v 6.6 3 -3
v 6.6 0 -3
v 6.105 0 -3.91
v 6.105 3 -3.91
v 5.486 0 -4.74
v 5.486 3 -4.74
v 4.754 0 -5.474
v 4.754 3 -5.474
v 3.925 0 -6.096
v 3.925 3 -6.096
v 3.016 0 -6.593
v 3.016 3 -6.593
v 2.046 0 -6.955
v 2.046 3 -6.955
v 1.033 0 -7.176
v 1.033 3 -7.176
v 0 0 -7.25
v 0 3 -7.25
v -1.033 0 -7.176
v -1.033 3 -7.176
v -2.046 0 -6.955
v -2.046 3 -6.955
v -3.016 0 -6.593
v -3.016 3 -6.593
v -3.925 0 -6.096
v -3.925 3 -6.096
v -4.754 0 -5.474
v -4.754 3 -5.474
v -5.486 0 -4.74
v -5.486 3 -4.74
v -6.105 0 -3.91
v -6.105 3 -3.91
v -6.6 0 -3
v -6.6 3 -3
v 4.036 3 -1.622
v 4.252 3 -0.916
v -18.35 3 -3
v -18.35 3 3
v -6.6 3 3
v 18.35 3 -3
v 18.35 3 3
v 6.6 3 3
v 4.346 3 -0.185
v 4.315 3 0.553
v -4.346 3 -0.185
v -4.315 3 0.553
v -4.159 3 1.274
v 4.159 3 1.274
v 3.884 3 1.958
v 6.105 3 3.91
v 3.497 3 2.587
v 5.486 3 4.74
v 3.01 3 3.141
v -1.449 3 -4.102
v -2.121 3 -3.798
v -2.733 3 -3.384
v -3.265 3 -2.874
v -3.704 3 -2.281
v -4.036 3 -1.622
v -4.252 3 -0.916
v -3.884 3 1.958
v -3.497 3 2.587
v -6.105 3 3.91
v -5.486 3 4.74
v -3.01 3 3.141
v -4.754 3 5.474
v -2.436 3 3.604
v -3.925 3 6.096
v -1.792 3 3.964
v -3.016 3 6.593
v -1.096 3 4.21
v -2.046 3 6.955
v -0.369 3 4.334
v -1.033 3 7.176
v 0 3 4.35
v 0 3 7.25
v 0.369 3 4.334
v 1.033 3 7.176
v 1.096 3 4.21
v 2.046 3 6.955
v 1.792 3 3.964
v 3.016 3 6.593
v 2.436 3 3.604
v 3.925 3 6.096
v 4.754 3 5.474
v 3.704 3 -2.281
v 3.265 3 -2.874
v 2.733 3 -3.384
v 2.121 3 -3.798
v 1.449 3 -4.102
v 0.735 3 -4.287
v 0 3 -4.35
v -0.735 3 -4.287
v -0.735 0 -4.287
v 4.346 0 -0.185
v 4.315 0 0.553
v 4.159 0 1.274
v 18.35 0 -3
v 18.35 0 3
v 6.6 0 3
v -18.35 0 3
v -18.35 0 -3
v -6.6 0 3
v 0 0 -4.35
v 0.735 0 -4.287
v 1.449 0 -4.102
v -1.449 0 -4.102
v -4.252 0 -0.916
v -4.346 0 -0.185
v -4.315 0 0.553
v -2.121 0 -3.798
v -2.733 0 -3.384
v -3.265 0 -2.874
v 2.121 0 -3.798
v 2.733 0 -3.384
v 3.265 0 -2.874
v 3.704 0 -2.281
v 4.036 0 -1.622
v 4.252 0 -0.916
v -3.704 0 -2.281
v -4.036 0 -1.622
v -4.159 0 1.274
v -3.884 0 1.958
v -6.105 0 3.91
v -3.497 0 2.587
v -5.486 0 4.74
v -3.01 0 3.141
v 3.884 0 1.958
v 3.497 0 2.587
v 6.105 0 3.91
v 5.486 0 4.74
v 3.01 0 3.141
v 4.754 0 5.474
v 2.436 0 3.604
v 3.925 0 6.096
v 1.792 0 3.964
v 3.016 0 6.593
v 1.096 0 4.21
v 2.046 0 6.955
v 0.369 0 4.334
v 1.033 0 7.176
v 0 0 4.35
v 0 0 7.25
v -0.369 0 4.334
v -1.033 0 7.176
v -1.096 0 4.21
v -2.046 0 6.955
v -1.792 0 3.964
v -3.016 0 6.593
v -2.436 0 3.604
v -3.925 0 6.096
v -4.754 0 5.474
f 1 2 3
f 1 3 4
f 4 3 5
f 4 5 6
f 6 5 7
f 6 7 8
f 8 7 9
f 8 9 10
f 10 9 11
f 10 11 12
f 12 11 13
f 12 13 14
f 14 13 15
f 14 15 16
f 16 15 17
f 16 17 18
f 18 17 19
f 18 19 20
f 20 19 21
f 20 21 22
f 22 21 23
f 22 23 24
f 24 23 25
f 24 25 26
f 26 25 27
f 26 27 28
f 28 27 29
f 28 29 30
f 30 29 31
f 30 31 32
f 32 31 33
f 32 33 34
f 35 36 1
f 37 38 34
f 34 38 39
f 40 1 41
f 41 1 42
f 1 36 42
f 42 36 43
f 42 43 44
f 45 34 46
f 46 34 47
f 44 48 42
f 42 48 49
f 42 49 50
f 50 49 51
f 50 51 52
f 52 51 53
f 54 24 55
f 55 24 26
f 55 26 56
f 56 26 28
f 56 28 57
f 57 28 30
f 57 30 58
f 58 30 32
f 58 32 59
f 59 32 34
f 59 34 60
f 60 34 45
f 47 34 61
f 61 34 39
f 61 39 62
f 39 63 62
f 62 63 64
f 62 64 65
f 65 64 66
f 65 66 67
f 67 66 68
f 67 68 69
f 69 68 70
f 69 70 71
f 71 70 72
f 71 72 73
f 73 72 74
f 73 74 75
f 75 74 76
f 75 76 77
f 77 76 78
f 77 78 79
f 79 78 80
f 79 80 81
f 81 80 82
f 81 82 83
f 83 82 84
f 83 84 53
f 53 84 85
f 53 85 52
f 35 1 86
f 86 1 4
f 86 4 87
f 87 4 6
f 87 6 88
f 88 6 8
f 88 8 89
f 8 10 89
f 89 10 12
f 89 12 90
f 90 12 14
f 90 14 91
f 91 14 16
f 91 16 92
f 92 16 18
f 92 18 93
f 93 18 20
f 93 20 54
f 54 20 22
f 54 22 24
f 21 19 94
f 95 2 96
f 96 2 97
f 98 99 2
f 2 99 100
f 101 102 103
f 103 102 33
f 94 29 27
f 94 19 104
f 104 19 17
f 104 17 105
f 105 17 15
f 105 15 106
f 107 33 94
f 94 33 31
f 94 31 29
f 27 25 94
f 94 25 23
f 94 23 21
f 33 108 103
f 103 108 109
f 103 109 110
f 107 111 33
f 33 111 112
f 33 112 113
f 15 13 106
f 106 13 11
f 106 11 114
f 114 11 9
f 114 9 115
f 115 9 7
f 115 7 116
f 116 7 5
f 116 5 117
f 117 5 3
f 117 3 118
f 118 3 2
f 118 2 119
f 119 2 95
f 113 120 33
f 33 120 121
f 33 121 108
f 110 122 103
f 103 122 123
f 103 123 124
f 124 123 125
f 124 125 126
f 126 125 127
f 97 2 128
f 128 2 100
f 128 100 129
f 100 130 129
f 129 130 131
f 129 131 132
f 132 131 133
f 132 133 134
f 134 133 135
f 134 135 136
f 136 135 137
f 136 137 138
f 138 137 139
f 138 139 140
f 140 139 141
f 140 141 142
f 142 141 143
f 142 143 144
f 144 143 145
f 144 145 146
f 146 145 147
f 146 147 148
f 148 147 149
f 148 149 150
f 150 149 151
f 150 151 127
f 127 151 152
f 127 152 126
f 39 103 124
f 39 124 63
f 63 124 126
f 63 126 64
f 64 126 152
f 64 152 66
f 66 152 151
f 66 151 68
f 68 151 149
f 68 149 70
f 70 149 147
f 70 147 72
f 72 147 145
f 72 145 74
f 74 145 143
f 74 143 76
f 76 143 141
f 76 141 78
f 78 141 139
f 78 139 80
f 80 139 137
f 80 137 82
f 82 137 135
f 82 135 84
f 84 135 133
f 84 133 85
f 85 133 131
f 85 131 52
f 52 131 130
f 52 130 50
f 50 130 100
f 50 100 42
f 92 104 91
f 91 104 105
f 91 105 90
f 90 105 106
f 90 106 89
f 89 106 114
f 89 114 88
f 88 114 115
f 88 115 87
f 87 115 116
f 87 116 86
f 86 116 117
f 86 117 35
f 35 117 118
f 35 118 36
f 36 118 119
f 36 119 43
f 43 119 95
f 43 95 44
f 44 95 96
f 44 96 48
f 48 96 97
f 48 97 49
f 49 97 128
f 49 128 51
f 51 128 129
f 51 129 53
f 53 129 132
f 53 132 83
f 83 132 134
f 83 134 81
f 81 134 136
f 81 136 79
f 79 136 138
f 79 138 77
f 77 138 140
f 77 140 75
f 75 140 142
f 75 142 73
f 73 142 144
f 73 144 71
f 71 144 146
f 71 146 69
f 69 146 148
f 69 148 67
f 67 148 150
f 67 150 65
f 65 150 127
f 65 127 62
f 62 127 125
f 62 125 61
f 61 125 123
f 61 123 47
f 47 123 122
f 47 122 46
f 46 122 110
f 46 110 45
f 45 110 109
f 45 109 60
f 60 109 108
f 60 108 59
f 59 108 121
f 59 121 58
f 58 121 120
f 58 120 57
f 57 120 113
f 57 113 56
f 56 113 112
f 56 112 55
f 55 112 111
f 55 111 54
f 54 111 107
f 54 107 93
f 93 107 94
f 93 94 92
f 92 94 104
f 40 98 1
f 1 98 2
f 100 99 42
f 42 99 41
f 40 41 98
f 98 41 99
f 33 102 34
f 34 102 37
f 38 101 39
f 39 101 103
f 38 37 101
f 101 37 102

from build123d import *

# Parameters (mm, degrees)
SKETCH1_R           = 7.25
SKETCH1_R_2         = 4.35
BOSS_EXTRUDE1_DEPTH = 3
SKETCH2_W           = 14
SKETCH2_H           = 6
BOSS_EXTRUDE2_DEPTH = 3


with BuildPart() as part:
    # Sketch1 → Boss-Extrude1 (new body)
    with BuildSketch(Plane(origin=(0, 0, 0), x_dir=(1, 0, 0), z_dir=(0, 1, 0))):
        with Locations(Location((0, 0, 0), (0, 0, 270))):
            Circle(SKETCH1_R)
        with Locations(Location((0, 0, 0), (0, 0, 270))):
            Circle(SKETCH1_R_2, mode=Mode.SUBTRACT)
    extrude(amount=BOSS_EXTRUDE1_DEPTH)

    # Sketch2 → Boss-Extrude2 (add)
    with BuildSketch(Plane(origin=(0, 0, 0), x_dir=(1, 0, 0), z_dir=(0, 1, 0))):
        Polygon((4.35, 3), (4.35, 0), (4.35, -3), (18.35, -3), (18.35, 3), align=None)
        with Locations((-11.35, 0)):
            Rectangle(SKETCH2_W, SKETCH2_H)
    extrude(amount=BOSS_EXTRUDE2_DEPTH)


solid = part.part
